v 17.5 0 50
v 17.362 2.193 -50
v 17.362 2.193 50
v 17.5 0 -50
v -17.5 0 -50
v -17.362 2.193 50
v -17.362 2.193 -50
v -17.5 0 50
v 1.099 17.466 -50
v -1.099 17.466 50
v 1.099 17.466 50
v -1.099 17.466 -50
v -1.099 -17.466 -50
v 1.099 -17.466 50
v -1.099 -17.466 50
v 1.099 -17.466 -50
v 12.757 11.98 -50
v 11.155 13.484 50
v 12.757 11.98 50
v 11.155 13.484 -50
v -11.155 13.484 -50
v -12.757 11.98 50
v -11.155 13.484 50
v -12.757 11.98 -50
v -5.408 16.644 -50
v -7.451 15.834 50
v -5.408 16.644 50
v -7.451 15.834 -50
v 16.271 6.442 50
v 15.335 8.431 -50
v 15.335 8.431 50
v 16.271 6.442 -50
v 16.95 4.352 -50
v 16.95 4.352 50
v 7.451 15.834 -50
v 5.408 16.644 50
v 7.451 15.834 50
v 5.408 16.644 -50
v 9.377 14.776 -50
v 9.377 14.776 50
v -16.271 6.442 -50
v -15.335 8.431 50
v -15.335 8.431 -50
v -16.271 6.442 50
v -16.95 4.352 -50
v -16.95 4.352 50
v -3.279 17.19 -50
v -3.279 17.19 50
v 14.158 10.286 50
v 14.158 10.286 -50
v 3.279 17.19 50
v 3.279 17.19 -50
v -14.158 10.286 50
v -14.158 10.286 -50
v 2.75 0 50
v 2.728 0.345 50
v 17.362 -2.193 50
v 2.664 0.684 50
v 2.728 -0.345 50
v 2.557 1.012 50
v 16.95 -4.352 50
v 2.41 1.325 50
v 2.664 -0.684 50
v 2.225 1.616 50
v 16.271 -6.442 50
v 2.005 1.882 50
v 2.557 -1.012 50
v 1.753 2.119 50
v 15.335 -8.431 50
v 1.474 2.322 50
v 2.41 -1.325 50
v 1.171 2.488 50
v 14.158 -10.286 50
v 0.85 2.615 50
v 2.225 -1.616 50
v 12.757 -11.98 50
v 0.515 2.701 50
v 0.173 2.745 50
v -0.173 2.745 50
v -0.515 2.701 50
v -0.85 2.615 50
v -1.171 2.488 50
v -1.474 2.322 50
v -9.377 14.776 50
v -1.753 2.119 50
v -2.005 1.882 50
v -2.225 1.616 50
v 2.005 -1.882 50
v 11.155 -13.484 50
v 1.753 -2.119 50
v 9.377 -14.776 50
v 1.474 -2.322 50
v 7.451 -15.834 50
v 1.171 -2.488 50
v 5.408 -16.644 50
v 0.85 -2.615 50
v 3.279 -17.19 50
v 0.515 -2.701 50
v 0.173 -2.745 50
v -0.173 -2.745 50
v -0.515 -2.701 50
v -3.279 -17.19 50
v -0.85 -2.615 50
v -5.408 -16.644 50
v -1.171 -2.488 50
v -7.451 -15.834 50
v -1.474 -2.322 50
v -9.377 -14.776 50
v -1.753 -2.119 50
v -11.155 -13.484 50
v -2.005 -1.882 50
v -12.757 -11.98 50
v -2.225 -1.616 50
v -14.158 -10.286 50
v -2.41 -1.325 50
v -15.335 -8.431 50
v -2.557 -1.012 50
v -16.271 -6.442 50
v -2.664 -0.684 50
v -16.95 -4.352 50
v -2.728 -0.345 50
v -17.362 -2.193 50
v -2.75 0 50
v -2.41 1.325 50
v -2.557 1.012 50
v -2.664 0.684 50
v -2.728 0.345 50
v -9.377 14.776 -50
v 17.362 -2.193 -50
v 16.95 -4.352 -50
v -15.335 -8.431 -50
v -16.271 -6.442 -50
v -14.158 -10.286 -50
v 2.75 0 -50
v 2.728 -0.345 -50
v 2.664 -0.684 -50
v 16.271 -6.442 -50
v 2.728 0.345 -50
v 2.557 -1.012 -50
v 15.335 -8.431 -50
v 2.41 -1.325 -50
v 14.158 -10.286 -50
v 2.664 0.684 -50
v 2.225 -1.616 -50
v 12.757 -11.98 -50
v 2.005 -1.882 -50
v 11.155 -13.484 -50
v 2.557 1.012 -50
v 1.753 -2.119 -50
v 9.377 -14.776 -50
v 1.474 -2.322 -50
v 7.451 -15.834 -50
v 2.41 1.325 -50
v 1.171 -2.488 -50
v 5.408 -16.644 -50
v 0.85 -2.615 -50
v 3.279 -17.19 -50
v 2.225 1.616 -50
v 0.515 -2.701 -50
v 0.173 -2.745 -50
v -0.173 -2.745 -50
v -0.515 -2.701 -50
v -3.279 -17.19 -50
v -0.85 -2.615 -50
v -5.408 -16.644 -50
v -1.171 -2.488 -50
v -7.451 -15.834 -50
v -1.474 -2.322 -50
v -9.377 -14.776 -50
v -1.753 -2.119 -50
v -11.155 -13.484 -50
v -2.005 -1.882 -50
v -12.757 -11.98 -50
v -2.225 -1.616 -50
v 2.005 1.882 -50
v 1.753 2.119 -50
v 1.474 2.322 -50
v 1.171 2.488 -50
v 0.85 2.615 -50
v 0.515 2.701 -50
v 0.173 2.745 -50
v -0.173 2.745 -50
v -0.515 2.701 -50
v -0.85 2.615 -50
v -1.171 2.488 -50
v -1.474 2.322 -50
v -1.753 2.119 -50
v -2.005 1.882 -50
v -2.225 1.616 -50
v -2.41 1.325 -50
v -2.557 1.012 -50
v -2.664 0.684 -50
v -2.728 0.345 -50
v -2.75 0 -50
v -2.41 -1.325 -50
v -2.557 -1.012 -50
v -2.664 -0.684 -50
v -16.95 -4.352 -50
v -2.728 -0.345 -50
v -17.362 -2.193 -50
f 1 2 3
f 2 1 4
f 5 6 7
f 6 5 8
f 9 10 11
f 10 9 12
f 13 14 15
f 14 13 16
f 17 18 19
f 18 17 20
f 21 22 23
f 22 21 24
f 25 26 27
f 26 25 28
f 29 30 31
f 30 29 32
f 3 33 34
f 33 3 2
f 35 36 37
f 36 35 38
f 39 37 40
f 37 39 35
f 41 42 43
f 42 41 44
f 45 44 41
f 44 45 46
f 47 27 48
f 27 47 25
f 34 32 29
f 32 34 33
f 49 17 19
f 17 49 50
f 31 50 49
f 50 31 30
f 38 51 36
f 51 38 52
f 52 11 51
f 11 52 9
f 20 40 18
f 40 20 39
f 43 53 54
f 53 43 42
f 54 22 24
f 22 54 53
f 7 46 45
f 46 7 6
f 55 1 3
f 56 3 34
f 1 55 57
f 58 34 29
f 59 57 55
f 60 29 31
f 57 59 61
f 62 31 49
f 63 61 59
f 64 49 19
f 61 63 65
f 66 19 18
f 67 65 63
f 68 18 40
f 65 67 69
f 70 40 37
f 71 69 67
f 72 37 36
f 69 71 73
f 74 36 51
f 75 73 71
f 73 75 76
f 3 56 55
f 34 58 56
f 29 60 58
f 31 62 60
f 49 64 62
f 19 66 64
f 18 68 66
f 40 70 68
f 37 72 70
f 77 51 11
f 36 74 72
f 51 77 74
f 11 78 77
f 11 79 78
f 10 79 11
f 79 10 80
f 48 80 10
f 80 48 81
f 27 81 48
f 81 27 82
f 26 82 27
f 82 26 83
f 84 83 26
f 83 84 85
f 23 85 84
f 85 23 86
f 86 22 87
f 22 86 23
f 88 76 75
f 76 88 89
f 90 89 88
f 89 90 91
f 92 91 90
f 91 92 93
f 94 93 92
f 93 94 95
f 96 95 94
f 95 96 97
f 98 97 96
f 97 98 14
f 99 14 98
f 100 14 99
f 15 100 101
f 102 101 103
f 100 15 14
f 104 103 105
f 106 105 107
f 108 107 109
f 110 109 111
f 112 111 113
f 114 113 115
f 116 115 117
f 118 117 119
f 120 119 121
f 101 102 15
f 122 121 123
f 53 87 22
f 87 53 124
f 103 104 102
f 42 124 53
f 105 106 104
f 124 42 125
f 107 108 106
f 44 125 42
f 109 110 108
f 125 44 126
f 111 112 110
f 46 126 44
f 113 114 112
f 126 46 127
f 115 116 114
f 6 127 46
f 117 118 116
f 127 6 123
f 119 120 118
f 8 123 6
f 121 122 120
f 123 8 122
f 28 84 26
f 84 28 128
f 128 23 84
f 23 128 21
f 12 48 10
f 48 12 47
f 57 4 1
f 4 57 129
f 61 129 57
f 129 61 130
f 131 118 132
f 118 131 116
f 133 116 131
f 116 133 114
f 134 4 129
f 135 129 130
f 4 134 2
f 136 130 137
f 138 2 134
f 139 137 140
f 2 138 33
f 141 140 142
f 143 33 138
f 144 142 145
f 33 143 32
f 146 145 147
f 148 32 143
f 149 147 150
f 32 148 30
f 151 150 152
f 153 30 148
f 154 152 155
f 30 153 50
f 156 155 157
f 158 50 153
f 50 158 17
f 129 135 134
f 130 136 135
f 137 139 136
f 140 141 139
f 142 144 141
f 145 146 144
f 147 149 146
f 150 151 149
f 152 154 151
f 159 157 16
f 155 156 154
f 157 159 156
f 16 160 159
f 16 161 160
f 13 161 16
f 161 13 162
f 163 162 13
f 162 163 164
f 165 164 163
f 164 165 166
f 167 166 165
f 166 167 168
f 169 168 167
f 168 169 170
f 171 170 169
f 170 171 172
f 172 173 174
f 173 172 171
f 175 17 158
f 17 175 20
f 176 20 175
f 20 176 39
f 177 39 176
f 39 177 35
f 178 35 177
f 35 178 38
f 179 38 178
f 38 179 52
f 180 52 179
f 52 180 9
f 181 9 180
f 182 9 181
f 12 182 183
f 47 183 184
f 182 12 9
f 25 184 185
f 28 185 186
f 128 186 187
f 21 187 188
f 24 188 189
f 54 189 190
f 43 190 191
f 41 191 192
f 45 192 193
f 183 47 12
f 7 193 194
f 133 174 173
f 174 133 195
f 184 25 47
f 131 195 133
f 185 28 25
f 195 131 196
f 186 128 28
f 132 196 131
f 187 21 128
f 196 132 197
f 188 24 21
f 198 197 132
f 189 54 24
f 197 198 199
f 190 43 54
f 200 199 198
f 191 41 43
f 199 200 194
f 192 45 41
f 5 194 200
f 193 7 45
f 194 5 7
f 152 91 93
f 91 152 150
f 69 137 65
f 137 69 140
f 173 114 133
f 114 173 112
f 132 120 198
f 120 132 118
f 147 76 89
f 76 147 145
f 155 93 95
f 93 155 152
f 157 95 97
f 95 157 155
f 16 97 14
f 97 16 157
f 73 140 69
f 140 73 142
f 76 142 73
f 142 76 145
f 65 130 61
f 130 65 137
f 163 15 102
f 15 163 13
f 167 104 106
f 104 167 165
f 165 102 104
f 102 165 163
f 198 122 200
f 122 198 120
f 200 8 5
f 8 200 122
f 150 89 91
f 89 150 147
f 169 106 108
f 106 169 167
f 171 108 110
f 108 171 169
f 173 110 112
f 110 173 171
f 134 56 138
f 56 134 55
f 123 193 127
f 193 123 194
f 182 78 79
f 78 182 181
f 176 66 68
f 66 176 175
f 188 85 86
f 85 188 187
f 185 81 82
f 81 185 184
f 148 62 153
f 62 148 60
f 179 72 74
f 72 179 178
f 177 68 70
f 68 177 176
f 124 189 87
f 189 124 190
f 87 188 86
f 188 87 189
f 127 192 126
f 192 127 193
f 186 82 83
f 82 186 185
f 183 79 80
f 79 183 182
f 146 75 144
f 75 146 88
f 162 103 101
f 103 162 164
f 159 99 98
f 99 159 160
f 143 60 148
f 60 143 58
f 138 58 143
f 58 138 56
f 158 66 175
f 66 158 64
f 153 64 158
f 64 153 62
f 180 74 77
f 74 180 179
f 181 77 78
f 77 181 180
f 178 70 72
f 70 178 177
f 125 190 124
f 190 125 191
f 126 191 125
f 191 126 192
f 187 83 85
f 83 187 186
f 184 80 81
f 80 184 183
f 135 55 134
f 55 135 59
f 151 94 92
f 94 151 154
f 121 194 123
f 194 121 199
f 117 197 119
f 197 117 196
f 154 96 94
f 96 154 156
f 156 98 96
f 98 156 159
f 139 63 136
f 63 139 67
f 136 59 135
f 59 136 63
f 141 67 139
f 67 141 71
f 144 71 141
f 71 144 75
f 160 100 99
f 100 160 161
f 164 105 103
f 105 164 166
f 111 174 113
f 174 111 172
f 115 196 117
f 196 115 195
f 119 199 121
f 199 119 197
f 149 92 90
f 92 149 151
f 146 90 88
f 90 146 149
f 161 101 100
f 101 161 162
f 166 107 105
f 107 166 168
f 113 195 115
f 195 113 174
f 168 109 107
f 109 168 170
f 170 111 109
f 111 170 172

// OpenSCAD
$fn = 50;


difference() {
	union() {
		translate(v = [0, 0, -50.0000000000]) {
			cylinder(h = 100, r = 17.5000000000);
		}
	}
	union() {
		translate(v = [0, 0, -100.0000000000]) {
			cylinder(h = 200, r = 2.7500000000);
		}
	}
}
